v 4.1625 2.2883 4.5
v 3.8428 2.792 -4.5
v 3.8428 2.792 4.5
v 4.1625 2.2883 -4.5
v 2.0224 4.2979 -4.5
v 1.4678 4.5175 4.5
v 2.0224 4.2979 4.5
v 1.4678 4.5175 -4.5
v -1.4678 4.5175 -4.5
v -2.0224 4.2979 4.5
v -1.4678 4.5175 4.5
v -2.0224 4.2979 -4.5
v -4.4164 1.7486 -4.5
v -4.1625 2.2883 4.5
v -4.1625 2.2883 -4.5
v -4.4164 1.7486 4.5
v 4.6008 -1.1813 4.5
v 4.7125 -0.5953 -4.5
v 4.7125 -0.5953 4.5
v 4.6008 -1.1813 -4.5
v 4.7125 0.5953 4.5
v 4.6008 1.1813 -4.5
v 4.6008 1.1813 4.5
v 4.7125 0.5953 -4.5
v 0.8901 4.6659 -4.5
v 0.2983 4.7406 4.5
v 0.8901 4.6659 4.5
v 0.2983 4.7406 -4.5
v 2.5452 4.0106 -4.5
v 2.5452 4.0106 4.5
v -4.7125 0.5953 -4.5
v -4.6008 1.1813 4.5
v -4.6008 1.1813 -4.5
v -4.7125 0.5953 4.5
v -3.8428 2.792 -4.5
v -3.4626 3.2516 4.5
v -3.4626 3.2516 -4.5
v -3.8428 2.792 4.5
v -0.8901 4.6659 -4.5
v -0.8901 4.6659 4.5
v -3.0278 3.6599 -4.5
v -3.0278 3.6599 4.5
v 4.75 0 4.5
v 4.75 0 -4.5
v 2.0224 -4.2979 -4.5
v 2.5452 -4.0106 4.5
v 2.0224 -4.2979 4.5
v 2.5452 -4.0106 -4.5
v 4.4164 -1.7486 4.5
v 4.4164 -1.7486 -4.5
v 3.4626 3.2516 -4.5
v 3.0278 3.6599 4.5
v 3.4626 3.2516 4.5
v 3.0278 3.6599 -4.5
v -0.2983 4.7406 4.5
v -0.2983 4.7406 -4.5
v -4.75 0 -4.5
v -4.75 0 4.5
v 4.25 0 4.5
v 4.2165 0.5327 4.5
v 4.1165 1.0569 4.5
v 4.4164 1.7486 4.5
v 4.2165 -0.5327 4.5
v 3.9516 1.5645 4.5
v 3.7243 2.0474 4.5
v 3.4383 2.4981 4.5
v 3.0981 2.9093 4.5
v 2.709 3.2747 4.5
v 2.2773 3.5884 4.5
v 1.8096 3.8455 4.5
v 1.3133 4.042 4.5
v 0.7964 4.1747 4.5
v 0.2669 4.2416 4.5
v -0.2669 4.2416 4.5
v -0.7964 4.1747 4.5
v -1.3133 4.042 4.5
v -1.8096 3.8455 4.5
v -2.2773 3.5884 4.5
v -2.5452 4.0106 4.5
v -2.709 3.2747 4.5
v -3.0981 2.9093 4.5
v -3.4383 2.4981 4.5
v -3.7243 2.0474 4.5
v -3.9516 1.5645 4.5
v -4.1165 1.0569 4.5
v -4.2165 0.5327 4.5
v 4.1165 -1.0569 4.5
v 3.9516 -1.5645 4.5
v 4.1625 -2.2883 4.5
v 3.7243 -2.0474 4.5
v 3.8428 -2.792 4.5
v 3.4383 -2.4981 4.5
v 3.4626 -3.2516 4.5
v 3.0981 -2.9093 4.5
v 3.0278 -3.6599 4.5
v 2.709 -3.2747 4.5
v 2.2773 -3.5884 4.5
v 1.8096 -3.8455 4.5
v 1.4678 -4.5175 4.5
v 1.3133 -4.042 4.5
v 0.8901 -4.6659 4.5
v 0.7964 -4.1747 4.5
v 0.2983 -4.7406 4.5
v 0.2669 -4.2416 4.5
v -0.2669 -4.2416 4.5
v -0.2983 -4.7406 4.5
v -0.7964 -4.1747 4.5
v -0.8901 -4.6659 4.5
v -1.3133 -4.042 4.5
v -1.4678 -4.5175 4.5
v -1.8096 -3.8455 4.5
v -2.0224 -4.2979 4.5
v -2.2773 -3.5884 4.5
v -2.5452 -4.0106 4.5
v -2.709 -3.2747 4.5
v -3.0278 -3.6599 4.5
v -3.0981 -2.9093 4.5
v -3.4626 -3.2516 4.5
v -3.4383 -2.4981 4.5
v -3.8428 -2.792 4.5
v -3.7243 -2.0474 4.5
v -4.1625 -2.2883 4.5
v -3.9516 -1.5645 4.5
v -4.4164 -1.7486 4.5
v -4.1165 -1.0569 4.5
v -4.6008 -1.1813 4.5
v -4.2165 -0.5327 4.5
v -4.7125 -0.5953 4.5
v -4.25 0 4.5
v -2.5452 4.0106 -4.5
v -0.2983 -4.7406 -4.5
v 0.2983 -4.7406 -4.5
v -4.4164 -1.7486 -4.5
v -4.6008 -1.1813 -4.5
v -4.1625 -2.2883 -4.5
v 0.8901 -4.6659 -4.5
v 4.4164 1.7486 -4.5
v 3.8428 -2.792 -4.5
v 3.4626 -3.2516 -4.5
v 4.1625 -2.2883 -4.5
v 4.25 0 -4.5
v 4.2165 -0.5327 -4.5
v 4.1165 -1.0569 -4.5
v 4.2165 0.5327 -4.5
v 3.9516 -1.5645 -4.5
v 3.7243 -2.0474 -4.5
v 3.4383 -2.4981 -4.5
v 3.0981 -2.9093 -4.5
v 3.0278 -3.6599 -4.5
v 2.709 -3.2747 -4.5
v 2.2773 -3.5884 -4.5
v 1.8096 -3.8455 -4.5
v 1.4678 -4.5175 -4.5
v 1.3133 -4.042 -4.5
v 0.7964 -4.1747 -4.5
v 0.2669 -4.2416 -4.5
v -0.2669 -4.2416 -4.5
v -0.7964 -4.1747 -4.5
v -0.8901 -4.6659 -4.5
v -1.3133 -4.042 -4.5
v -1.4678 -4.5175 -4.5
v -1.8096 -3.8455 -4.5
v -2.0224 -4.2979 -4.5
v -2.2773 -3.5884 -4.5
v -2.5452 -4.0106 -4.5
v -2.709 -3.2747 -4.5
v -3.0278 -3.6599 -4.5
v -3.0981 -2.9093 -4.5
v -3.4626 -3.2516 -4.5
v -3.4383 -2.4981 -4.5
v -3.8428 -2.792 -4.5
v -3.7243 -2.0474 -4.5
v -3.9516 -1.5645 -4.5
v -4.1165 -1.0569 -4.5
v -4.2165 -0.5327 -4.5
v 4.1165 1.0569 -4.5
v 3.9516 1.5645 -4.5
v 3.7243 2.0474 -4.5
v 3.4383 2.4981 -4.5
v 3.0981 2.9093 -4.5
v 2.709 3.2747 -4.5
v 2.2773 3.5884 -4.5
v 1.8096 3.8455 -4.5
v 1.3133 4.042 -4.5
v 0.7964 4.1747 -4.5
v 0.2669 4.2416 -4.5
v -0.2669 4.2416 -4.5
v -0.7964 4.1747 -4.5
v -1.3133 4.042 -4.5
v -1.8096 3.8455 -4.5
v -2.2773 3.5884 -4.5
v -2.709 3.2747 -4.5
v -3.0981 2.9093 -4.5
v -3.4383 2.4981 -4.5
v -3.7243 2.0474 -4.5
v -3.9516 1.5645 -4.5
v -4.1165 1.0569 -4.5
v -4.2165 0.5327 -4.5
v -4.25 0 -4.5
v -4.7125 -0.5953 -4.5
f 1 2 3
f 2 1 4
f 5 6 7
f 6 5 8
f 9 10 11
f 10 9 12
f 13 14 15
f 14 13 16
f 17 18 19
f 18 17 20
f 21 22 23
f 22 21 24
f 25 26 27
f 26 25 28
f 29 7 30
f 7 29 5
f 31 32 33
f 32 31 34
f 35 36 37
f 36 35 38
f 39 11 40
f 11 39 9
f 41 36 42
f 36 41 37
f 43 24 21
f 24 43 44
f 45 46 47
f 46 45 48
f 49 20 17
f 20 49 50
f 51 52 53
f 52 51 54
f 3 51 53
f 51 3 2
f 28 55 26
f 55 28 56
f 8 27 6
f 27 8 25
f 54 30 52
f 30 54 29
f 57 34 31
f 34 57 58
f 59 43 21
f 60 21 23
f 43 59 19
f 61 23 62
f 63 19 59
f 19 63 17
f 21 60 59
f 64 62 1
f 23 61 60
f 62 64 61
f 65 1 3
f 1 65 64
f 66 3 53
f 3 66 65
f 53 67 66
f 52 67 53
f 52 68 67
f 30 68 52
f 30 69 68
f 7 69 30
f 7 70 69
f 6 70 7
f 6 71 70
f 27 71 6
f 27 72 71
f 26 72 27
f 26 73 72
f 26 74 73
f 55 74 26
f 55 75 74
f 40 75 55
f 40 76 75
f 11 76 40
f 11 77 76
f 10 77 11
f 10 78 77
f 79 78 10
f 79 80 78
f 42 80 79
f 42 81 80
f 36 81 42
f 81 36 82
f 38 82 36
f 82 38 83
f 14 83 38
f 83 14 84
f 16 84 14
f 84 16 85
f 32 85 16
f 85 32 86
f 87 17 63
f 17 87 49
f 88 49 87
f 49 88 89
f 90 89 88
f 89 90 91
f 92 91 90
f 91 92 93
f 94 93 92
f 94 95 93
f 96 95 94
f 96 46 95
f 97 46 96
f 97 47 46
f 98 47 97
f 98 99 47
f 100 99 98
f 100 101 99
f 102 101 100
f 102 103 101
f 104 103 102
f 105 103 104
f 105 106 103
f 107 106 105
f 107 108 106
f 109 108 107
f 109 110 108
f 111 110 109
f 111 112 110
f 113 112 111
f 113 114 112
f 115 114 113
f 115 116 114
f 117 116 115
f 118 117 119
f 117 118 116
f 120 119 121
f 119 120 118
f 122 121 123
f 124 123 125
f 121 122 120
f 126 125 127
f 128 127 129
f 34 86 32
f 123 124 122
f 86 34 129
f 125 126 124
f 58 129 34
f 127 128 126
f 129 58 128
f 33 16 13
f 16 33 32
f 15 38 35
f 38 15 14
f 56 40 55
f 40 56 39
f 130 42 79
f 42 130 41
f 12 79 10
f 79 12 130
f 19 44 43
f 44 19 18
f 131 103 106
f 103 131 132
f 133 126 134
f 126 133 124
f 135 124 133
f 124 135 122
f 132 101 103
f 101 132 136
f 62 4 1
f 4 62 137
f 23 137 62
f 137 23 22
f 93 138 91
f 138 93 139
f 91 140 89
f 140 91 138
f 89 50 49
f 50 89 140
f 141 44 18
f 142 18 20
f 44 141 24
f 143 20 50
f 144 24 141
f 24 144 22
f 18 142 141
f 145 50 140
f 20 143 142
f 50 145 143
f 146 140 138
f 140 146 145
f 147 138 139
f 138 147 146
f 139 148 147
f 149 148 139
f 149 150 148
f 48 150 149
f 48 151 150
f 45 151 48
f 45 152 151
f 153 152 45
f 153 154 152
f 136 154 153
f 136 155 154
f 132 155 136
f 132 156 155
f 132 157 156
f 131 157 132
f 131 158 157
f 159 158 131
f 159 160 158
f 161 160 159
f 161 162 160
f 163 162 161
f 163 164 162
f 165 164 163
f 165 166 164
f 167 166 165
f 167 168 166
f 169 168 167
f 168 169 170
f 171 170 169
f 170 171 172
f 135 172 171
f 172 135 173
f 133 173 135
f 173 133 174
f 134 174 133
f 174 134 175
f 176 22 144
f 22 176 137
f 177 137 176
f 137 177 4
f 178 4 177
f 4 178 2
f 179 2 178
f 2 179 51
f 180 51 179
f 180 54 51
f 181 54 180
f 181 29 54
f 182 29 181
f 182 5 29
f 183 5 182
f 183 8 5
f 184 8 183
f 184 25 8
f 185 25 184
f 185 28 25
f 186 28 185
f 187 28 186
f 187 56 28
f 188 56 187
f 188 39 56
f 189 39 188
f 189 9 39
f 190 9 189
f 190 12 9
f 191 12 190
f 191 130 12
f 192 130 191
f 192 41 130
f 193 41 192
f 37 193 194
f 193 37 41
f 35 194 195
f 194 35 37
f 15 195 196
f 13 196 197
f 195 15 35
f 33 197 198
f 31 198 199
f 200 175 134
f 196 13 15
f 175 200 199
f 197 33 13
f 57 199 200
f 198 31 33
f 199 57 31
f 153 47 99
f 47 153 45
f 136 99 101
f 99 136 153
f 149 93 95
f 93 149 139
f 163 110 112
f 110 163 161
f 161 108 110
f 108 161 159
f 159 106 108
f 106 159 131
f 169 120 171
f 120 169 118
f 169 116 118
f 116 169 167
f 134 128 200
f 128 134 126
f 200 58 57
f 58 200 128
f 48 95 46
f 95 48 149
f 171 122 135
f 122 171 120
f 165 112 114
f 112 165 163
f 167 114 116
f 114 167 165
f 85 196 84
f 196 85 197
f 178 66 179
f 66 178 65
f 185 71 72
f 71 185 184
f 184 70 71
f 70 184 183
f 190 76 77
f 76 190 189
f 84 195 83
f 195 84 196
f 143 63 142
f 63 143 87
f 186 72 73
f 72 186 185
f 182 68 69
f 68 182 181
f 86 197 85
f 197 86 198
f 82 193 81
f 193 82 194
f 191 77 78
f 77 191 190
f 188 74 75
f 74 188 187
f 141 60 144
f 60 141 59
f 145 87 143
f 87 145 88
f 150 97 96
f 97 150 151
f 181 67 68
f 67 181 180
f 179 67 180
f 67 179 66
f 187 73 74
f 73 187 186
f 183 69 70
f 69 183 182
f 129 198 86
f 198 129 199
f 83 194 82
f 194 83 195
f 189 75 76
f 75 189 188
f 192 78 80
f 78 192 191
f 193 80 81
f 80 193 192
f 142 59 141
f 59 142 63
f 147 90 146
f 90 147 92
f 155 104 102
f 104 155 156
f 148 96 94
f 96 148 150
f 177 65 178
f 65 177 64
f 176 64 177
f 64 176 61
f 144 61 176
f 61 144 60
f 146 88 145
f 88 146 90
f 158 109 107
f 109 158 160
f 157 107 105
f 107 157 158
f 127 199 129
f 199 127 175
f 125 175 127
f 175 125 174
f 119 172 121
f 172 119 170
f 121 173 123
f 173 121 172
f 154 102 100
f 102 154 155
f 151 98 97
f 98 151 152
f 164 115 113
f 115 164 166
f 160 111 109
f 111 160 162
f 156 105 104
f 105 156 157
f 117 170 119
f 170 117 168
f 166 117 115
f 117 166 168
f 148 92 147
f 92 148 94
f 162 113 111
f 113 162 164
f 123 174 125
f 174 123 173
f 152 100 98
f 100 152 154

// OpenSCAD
$fn = 50;


difference() {
	union() {
		translate(v = [0, 0, -4.5000000000]) {
			cylinder(h = 9, r = 4.7500000000);
		}
	}
	union() {
		translate(v = [0, 0, -100.0000000000]) {
			cylinder(h = 200, r = 4.2500000000);
		}
	}
}
